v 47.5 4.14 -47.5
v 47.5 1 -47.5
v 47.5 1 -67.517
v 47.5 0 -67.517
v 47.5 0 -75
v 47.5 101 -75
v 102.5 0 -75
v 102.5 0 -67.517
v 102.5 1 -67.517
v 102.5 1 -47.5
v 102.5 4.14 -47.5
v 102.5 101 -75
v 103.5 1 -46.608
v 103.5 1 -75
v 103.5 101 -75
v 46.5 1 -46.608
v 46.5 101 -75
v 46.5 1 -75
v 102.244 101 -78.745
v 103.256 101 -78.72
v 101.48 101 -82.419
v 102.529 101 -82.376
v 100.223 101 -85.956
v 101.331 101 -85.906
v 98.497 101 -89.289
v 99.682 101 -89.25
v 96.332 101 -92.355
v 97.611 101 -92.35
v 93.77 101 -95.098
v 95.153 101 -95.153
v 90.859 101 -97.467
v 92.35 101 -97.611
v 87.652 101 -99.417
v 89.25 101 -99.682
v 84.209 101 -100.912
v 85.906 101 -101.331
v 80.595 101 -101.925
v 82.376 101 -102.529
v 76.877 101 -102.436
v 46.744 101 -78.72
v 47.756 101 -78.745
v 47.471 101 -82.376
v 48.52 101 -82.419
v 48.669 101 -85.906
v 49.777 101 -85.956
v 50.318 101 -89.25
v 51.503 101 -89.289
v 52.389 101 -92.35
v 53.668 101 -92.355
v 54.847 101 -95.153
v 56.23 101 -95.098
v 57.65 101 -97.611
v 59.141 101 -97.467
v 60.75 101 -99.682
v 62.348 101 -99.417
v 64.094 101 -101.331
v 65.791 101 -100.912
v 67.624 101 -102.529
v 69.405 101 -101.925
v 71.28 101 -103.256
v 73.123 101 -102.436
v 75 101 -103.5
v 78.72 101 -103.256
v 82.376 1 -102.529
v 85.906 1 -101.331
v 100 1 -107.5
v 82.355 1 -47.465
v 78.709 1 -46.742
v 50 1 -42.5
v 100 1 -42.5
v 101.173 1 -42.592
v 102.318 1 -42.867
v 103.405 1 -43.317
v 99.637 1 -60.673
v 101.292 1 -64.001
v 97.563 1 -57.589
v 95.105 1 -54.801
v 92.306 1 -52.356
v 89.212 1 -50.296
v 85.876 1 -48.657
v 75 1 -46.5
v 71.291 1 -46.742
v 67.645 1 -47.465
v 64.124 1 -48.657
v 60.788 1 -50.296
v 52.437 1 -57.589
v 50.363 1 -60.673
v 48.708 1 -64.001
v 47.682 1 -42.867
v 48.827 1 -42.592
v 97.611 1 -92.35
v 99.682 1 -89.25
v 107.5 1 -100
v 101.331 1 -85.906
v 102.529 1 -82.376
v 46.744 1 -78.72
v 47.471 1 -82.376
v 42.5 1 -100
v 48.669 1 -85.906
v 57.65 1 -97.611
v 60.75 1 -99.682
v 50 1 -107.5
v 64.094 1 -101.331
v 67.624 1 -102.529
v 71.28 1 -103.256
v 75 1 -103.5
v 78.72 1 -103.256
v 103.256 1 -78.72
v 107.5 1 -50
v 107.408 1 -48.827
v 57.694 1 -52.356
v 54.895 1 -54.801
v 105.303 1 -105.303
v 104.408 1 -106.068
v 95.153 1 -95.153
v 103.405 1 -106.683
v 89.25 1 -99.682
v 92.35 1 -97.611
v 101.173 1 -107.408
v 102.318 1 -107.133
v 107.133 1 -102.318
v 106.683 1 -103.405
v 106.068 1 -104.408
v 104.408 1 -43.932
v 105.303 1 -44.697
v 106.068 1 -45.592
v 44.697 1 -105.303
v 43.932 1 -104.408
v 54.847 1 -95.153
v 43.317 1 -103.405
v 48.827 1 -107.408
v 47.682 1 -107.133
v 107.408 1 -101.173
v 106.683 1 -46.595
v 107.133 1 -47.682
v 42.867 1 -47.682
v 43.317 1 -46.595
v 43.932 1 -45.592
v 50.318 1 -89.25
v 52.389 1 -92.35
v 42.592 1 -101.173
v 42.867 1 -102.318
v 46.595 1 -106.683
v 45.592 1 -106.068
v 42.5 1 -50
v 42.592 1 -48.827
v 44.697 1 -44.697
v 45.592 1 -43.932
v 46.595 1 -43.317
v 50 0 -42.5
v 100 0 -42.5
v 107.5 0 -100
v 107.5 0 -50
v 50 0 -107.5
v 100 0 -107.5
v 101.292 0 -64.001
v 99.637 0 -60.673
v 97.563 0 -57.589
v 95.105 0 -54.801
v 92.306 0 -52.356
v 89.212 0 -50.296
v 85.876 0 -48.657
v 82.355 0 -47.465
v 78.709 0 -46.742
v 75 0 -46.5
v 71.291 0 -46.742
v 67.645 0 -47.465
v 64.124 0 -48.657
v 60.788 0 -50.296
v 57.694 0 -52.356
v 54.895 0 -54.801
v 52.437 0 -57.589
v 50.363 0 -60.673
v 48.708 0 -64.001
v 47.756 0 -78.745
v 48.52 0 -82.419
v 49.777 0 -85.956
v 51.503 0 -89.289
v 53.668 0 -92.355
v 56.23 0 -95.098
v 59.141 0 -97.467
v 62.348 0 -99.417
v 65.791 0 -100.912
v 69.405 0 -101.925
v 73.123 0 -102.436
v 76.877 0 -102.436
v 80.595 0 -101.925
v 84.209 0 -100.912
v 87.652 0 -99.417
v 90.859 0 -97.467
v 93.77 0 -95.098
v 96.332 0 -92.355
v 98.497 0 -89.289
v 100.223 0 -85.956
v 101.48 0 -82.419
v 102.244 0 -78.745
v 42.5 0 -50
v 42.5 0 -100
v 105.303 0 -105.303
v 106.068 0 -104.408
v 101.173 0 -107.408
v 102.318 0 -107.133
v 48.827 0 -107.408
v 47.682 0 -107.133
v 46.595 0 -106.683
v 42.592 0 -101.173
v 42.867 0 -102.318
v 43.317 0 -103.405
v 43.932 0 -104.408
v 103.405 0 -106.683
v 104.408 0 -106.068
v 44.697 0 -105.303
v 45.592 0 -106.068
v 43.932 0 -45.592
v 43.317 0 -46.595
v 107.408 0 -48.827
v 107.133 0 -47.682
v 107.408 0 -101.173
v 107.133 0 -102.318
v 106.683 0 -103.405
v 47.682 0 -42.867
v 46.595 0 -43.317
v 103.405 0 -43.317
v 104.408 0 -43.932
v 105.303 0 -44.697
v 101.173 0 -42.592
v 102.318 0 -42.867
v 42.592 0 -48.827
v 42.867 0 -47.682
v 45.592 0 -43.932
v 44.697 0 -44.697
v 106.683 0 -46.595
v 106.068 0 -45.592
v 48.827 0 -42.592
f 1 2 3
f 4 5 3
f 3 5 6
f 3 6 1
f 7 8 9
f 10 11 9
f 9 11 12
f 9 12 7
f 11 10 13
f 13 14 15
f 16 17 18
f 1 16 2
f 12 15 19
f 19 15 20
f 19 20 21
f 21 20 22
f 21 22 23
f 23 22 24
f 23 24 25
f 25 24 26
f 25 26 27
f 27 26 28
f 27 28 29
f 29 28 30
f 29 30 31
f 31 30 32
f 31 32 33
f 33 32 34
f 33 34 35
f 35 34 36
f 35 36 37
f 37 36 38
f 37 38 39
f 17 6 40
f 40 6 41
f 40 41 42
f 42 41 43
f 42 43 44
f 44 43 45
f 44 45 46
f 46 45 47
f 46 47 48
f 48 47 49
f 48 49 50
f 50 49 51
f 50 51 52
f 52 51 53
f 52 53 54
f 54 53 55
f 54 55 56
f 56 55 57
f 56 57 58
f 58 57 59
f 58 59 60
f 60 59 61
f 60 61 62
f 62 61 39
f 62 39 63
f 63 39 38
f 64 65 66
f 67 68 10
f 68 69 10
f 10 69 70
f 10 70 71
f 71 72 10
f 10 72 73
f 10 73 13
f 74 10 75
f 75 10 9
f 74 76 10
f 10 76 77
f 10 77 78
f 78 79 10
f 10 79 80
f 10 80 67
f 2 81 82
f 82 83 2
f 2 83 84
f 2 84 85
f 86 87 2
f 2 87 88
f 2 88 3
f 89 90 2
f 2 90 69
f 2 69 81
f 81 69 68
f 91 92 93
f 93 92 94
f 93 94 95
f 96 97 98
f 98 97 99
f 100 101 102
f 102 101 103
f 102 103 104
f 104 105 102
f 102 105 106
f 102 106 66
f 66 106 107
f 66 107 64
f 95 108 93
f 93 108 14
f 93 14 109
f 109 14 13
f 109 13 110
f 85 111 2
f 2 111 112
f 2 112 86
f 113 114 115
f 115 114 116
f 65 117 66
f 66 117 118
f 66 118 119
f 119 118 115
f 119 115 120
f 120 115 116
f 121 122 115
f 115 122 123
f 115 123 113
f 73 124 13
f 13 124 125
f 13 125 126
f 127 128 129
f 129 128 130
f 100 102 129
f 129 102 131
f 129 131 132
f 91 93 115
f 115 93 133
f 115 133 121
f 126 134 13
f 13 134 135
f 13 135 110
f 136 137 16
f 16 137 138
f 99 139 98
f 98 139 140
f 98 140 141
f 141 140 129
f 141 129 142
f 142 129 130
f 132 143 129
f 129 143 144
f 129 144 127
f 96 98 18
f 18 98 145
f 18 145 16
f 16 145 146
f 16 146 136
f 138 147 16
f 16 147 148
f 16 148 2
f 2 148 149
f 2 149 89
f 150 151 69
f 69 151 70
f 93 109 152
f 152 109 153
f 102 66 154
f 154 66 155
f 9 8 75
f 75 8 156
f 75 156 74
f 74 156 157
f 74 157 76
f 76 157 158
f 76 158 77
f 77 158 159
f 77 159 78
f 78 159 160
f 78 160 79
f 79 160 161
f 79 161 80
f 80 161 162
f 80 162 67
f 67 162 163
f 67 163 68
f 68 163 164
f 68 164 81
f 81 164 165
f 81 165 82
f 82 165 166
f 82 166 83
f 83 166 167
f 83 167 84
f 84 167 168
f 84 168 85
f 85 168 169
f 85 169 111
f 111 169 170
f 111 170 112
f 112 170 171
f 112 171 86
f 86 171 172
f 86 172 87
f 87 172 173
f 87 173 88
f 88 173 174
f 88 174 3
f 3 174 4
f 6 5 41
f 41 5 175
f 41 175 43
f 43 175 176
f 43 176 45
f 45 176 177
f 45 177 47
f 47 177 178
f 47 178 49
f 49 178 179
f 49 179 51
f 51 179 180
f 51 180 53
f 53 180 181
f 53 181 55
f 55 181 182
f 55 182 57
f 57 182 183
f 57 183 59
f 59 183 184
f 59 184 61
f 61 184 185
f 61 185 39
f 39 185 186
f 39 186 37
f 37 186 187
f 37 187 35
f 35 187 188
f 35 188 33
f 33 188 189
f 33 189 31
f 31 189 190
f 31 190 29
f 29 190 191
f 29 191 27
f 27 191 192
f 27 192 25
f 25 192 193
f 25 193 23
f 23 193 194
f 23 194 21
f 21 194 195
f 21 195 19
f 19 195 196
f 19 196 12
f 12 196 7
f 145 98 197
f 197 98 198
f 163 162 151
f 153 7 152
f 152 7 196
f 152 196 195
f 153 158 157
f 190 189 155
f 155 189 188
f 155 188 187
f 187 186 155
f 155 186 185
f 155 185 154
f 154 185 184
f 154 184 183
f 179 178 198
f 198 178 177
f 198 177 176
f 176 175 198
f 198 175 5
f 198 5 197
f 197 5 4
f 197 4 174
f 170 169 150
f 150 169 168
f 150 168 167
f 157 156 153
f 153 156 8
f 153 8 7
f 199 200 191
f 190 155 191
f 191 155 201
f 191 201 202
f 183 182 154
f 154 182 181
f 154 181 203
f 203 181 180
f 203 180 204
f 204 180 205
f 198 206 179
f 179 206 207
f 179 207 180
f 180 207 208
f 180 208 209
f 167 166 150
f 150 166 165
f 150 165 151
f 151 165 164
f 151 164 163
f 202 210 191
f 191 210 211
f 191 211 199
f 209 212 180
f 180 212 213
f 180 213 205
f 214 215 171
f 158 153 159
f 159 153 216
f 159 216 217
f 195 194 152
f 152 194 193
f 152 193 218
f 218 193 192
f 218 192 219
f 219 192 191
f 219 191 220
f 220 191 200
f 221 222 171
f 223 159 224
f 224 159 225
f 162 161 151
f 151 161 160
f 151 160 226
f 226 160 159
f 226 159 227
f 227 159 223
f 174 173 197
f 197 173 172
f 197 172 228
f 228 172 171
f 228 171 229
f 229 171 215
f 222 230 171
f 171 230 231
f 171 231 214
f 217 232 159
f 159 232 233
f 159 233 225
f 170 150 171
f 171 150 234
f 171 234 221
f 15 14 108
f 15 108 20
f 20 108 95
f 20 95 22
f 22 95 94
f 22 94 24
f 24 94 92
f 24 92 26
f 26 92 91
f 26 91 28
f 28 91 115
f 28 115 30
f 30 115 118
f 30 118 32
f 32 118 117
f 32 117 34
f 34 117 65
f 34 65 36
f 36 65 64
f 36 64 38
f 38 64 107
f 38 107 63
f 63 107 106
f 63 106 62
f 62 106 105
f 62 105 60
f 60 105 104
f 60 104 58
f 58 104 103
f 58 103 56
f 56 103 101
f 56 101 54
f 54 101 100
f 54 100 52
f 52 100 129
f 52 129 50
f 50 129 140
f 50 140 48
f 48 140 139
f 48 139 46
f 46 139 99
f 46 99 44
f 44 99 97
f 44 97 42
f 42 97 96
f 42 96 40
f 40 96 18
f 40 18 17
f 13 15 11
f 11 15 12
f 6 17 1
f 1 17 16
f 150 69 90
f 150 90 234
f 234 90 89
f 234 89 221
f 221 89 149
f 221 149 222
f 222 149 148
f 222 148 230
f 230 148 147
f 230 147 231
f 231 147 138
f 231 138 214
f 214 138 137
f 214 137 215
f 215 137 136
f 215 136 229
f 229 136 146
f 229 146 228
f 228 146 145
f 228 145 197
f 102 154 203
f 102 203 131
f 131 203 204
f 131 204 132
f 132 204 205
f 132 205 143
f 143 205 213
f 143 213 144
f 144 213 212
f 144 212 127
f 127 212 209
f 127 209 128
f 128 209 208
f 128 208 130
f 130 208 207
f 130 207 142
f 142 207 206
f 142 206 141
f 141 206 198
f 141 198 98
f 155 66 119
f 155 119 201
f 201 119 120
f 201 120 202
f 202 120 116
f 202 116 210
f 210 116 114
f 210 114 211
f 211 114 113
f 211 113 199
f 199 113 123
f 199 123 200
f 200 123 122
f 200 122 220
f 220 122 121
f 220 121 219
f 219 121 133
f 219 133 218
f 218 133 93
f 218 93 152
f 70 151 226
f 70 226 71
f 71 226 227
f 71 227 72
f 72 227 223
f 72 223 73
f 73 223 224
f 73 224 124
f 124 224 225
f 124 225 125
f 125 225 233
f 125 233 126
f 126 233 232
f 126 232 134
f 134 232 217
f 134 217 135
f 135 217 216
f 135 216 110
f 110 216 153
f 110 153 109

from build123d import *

# Parameters (mm, degrees)
ESQUISSE1_W             = 65
ESQUISSE1_H             = 65
BOSS_EXTRU_1_DEPTH      = 1
BOSS_EXTRU_2_START      = 1
BOSS_EXTRU_2_DEPTH      = 100
ENL_V_MAT_EXTRU_1_REACH = 161.619
CONG_1_R                = 7.5


with BuildPart() as part:
    # Esquisse1 → Boss.-Extru.1 (new body)
    with BuildSketch(Plane(origin=(0, 0, 0), x_dir=(1, 0, 0), z_dir=(0, 1, 0))):
        with Locations((75, 75)):
            Rectangle(ESQUISSE1_W, ESQUISSE1_H)
        with BuildLine():
            Line((47.5, 67.516685226), (47.5, 75))
            ThreePointArc((47.5, 75), (75, 102.5), (102.5, 75))
            Line((102.5, 75), (102.5, 67.516685226))
            ThreePointArc((102.5, 67.516685226), (75, 46.5), (47.5, 67.516685226))
        make_face(mode=Mode.SUBTRACT)
    extrude(amount=BOSS_EXTRU_1_DEPTH)

    # Esquisse1<3> → Boss.-Extru.2 (add)
    with BuildSketch(Plane(origin=(0, 0, 0), x_dir=(1, 0, 0), z_dir=(0, 1, 0)).offset(BOSS_EXTRU_2_START)):
        with BuildLine():
            ThreePointArc((103.5, 75), (75, 103.5), (46.5, 75))
            Line((46.5, 75), (46.5, 46.608370242))
            Line((46.5, 46.608370242), (47.5, 47.5))
            Line((47.5, 47.5), (47.5, 67.516685226))
            Line((47.5, 67.516685226), (47.5, 75))
            ThreePointArc((47.5, 75), (75, 102.5), (102.5, 75))
            Line((102.5, 75), (102.5, 67.516685226))
            Line((102.5, 67.516685226), (102.5, 47.5))
            Line((102.5, 47.5), (103.5, 46.608370242))
            Line((103.5, 46.608370242), (103.5, 75))
        make_face()
    extrude(amount=BOSS_EXTRU_2_DEPTH)

    # Enlèv. mat.-Extru.1: up to this face of the body (flat: up to its plane)
    enl_v_mat_extru_1_end = Plane(part.part.faces().sort_by_distance((103.5, 51, -60.804185121))[0])
    # Esquisse2 → Enlèv. mat.-Extru.1 (cut, up to the picked face)
    with BuildSketch(Plane.ZY.offset(-46.5), mode=Mode.PRIVATE) as enl_v_mat_extru_1_sk1:
        Polygon((-46.608370242, 1), (-75, 101), (-46.608370242, 101), align=None)
    enl_v_mat_extru_1_tool1 = split(extrude(enl_v_mat_extru_1_sk1.sketch, amount=-ENL_V_MAT_EXTRU_1_REACH, mode=Mode.PRIVATE), bisect_by=enl_v_mat_extru_1_end, keep=Keep.BOTH, mode=Mode.PRIVATE)
    add(enl_v_mat_extru_1_tool1.solids().sort_by(Axis((46.5, 67.666667, -56.072247), (1, 0, 0)))[0], mode=Mode.SUBTRACT)

    # Congé1
    cong_1_edges = [part.edges().sort_by_distance(p)[0] for p in [
        (42.5, 0.5, -42.5),
        (42.5, 0.5, -107.5),
        (107.5, 0.5, -107.5),
        (107.5, 0.5, -42.5),
    ]]
    fillet(cong_1_edges, radius=CONG_1_R)


solid = part.part
